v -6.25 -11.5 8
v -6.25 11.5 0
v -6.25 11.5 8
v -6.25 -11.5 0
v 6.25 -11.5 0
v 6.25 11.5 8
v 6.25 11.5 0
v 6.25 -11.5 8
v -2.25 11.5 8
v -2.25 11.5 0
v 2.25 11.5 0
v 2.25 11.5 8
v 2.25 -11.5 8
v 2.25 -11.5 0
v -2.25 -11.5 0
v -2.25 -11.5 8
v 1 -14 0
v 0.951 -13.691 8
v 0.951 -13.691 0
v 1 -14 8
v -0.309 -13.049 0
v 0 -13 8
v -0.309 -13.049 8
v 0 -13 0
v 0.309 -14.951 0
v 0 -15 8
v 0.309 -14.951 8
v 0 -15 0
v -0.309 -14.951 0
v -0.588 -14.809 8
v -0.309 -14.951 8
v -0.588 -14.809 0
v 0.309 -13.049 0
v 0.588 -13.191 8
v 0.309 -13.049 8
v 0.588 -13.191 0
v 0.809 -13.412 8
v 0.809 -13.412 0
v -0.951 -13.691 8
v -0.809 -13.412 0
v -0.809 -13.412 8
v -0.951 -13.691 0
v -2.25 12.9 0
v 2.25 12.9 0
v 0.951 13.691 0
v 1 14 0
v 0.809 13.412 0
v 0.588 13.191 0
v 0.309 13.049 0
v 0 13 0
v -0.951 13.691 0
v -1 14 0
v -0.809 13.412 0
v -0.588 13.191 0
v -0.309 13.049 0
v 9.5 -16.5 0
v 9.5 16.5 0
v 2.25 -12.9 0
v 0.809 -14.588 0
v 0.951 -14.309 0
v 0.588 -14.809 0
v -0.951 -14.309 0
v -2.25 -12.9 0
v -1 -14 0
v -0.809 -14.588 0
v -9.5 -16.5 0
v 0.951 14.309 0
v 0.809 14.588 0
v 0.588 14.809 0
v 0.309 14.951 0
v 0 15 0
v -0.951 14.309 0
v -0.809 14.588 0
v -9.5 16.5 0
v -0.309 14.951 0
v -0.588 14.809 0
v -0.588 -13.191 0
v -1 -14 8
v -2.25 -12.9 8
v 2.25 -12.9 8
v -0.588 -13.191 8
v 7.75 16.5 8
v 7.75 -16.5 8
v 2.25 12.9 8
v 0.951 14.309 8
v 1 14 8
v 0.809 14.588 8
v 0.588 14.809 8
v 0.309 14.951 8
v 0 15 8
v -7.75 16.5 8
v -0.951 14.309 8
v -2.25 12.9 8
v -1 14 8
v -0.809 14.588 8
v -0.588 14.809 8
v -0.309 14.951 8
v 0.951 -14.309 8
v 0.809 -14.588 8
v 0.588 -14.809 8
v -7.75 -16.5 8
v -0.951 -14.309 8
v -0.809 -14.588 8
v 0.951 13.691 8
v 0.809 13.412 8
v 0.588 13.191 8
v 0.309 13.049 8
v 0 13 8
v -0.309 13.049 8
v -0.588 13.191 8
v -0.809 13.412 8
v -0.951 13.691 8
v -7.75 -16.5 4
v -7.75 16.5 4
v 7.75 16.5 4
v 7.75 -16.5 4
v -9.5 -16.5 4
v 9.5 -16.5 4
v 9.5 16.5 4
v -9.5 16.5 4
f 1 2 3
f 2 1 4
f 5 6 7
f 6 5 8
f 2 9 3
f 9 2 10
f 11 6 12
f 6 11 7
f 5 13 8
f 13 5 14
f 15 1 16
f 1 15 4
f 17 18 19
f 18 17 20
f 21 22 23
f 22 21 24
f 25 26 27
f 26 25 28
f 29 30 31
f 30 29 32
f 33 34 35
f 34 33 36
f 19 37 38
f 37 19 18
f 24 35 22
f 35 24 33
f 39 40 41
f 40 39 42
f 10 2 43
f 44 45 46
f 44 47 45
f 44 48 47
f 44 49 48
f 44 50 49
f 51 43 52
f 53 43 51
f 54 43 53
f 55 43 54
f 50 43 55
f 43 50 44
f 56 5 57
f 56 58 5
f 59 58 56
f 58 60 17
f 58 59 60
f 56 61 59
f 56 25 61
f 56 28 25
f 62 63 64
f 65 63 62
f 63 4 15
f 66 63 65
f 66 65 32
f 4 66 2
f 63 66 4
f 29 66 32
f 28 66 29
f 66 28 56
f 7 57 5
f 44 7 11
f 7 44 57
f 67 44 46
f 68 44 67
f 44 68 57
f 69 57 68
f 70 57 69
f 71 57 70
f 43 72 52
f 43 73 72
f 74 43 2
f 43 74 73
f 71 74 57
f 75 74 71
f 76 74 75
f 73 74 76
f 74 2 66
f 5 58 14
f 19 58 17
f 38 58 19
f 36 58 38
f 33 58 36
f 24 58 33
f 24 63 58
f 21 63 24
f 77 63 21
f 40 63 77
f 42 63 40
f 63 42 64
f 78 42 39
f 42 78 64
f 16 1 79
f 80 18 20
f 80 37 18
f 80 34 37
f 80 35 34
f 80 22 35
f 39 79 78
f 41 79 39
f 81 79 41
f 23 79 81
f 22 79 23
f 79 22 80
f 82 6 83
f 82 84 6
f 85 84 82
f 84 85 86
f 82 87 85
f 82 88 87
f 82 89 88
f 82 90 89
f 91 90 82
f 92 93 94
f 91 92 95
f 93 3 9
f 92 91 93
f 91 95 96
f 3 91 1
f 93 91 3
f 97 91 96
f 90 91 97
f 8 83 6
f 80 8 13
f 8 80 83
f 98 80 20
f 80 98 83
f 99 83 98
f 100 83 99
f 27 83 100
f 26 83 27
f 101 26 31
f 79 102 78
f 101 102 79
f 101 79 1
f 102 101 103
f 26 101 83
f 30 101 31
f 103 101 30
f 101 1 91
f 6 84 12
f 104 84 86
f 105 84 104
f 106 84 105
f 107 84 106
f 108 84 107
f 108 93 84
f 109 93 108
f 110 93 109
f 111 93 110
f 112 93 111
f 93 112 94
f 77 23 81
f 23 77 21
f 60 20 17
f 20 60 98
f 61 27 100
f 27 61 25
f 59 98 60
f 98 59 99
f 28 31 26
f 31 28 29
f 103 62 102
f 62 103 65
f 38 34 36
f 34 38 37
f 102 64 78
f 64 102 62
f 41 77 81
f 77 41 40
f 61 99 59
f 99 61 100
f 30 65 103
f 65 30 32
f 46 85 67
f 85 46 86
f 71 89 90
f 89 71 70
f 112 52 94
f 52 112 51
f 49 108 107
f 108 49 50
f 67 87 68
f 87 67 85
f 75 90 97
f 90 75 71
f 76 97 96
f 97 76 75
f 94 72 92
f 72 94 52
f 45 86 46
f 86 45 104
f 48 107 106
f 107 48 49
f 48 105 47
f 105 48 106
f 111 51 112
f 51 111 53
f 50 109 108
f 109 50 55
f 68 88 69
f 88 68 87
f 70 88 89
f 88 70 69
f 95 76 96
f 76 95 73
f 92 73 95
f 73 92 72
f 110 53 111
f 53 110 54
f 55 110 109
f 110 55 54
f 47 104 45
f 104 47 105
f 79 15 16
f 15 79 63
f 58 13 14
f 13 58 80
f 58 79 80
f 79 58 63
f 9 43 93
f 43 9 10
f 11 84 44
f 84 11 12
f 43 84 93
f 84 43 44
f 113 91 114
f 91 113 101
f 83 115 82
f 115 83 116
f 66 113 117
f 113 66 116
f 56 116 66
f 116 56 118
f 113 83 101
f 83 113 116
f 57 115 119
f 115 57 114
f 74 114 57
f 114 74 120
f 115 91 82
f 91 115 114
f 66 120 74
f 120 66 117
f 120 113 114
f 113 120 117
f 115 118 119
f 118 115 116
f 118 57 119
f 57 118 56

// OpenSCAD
// file: inc/spur_generator.scad
// Copyright 2011 Cliff L. Biffle.
// This file is licensed Creative Commons Attribution-ShareAlike 3.0.
// http://creativecommons.org/licenses/by-sa/3.0/

// You can get this file from http://www.thingiverse.com/thing:3575
use <parametric_involute_gear_v5.0.scad>

// Couple handy arithmetic shortcuts
function sqr(n) = pow(n, 2);
function cube(n) = pow(n, 3);

// This was derived as follows:
// In Greg Frost's original script, the outer radius of a spur
// gear can be computed as...
function gear_outer_radius(number_of_teeth, circular_pitch) =
  (sqr(number_of_teeth) * sqr(circular_pitch) + 64800)
    / (360 * number_of_teeth * circular_pitch);

// We can fit gears to the spacing by working it backwards.
//  spacing = gear_outer_radius(teeth1, cp)
//          + gear_outer_radius(teeth2, cp);
//
// I plugged this into an algebra system, assuming that spacing,
// teeth1, and teeth2 are given.  By solving for circular pitch,
// we get this terrifying equation:
function fit_spur_gears(n1, n2, spacing) =
  (180 * spacing * n1 * n2  +  180
    * sqrt(-(2*n1*cube(n2)-(sqr(spacing)-4)*sqr(n1)*sqr(n2)+2*cube(n1)*n2)))
  / (n1*sqr(n2) + sqr(n1)*n2);
// file: positions.scad
include <config.scad>;

filament_from_carriage = hotend_diam / 2 + 8; // make sure the hotend can clear the carriage
filament_x = hobbed_diam/2 + filament_diam/2 - .6;

// bearing helps provide clearance for motor mount screws
gear_side_bearing_y = bearing_height/2-m3_socket_head_height+1;

// MR105ZZ
//idler_bearing_outer     = 10;
//idler_bearing_inner     = 5;
//idler_bearing_thickness = 4;
//idler_nut_diam          = 8;

// 625ZZ
idler_bearing_height = 5;
idler_bearing_outer  = 16;
idler_bearing_inner  = 5;
idler_nut_diam       = m5_nut_diam;

idler_width        = idler_bearing_height+14;
idler_thickness    = idler_bearing_inner+3+1;
idler_shaft_diam   = idler_bearing_inner;
idler_shaft_length = idler_width*2;
idler_x            = filament_x + idler_bearing_outer/2 + filament_diam/2;

main_body_motor_side_width = bearing_outer/2+3;
main_body_open_side_width  = idler_x + idler_shaft_diam/2 + 2;
main_body_width            = main_body_motor_side_width + main_body_open_side_width;
main_body_x                = main_body_open_side_width-main_body_width/2;

idler_screw_from_shaft       = bearing_outer/2+idler_screw_nut_diam/2+2;
main_body_idler_side_height  = idler_screw_from_shaft + idler_screw_nut_diam/2 + min_material_thickness*2;
main_body_idler_side_height  = bearing_outer/2 + 2 + 4 + 2;
main_body_hotend_side_height = bearing_outer/2 + 10;
main_body_height             = main_body_idler_side_height + main_body_hotend_side_height;
main_body_z                  = main_body_idler_side_height - main_body_height/2;

hotend_retainer_width_motor_side = main_body_motor_side_width + abs(filament_x);
hotend_retainer_diam             = hotend_diam + min_material_thickness*2;
hotend_retainer_width_idler_side = hotend_retainer_diam/2;
hotend_retainer_width            = hotend_retainer_width_idler_side + hotend_retainer_width_motor_side;

hotend_retainer_height           = hotend_height_above_groove + hotend_groove_height;
hotend_retainer_x                = filament_x - hotend_retainer_width_motor_side + hotend_retainer_width/2;
hotend_retainer_z                = 0;

// motor position
motor_y = mount_plate_thickness;
motor_z = -motor_hole_spacing/2;
motor_x = -1*(main_body_motor_side_width+0.1+motor_side/2);

gear_dist = sqrt(pow(abs(motor_x),2)+pow(abs(motor_z),2));

idler_screw_spacing = (idler_width - idler_bearing_height - 2);

idler_lower_half = 0;
idler_upper_half = idler_screw_from_shaft+idler_screw_diam/2+3;
idler_thumb_lever_thickness = 3;
idler_thumb_lever_length = 6;

bowden_retainer_clip_outer = 12;

filament_y   = mount_plate_thickness + filament_diam;
total_depth  = filament_y + 5 + idler_bearing_height * 2;
total_height = motor_side + bottom_thickness;

idler_gap_width = 1;
idler_height       = main_body_height - 2;
idler_hinge_height = 2;
idler_gap_x        = idler_x - idler_shaft_diam/2 - 1 - idler_gap_width/2;
idler_gap_z        = main_body_z + (main_body_height/2 - idler_height/2);
// file: config.scad
$fa = 1;
$fs = 0.4;

// ESP PCB dimensions (with margins)
esp_pcb_w = 26.5;
esp_pcb_l = 34.5;
esp_pcb_h = 1.0;

// SCD PCB dimensions (with margins)
scd_pcb_w = 13.5;
scd_pcb_l = 22.5;
scd_pcb_h = 1.7;

// ESP PCB foot height
foot_h = 2.5;
// ESP PCB surface height
surface_h = foot_h + esp_pcb_h;
// Component height above ESP PCB
component_h = 20;

// SCD PCB rail length
scd_rail_l = scd_pcb_l*0.75;

// Thickness of the sides
side_t = 1.5;
// Wall height without top/bottom sides
wall_h = surface_h + component_h;

// USB hole dimensions (with margins)
usb_hole_w = 9;
usb_hole_h = 4;

// Rear gap for removing the lid
gap_w = 10;
gap_h = 2;

// Total case dimensions
total_w = esp_pcb_w + side_t*2;
total_l = esp_pcb_l + scd_pcb_l + side_t*2;
// file: util.scad
module rounded_square(size = [1,1] , r=0.25, corners = [true,true,true,true]) {
    difference() {
        square(size);
           
        corner(r);
    }
}

module corner(r = 1) {
    rotate(180)
    translate([1,1]*-r)
    difference() {
        square(r);
        circle(r);
    }
}


rounded_square($fn=30);
// file: gearbox.scad
use <regular_polygon.scad>;

gearbox_height=23;
gearbox_holes_distance=60;
gearbox_length=70;
gearbox_end_to_shaft = 25;
gearbox_end_to_hole = 19;

/* 23mm = 134 px */
/* = 145 px*/

shaft_total_length = 100;

module gearbox_model() {
  difference(){
  cube([gearbox_length,gearbox_holes_distance,gearbox_height]);
  union(){
    cube([gearbox_length/2,10,gearbox_height]);
    translate([0,gearbox_holes_distance-10,0])cube([gearbox_length/2,10,gearbox_height]);
    translate([gearbox_length-gearbox_end_to_hole, 0,0])cylinder(d=4,h=gearbox_height);
    translate([gearbox_length-gearbox_end_to_hole, gearbox_holes_distance,0])cylinder(d=4,h=gearbox_height);
  }
  }
}

module gearbox_model_xhole() {
  difference(){
  cube([gearbox_length,gearbox_holes_distance,gearbox_height]);
  union(){
    cube([gearbox_length/2-8,10,gearbox_height]);
    translate([0,gearbox_holes_distance-10,0])cube([gearbox_length/2-8,10,gearbox_height]);
    translate([gearbox_length-gearbox_end_to_hole, 0,0])cylinder(d=6,h=gearbox_height);
    translate([gearbox_length-gearbox_end_to_hole, gearbox_holes_distance,0])cylinder(d=6,h=gearbox_height);
  }
  }
  color([1,0,0])translate([gearbox_length-gearbox_end_to_hole, 0,0])cylinder(d=3.2,h=gearbox_height-10);
      translate([gearbox_length-gearbox_end_to_hole, gearbox_holes_distance,0])cylinder(d=3.2,h=gearbox_height-10);
    
}



module gearbox_drive_shaft() {
translate([gearbox_length-gearbox_end_to_shaft,-(shaft_total_length-gearbox_holes_distance)/2,gearbox_height/2])rotate([-90,0,0])linear_extrude(h=shaft_total_length)regular_polygon(order = 6, r=1.7);
}

module full_gearbox_model() {
/* gearbox_model(); */
color([1,0,0])gearbox_drive_shaft();
}
gearbox_model_xhole();
// file: nut.scad
use <regular_polygon.scad>;
module nut(nut_d=6.4,h=2.4) {
  linear_extrude(height=h)regular_polygon(order=6, r=nut_d/2);
}
// file: my_servo_spline.scad
module my_servo_spline(h=2.6) {
// Generate test plate for determining proper size, or spline alone for integrating into larger design
part = "spline"; // [ plate:Test Plate, spline:Spline Only ]

// How many points are on the spline (it's important that this is correct)
spline_count = 21;

// Estimated diameter of spline will be fine-tuned for a good fit
approximate_diameter = 4.2;

// First attempt, recommend 0.2 or greater, finer tuning recommend 0.1
step_size = 0.1;

module dummy() { }  // no more parameters

approx_od = approximate_diameter;
disc_size = approx_od+10;  // for purposes of plate generation...

stepmin = -4;
stepmax = 4;
xmid = (stepmin+stepmax)/2*(approx_od+8);

if (part == "plate") {
  for (i=[stepmin:stepmax]) {
    translate([i*(approx_od+8), 0, 0]) {
      spline_hole(approx_od + i*step_size);
      spline_plate(i);
    }
  }

  translate([xmid, 17, 0])
  linear_extrude(height=1)
  text(str("Nominal: ", approx_od, "  Step: ", step_size), 5, halign="center");
}
else {  // spline or anything else, just make the spline
  spline_hole(approx_od);
}


module spline_hole(inside_points_diameter = approx_od, label) {
  r1 = inside_points_diameter/2;
  // approximate distance along circumference from one bump to the next
  space = r1*sin(360/spline_count);
  r2 = r1 + space*0.75;  // pointy but not *too* pointy
  // about 4mm solid between outer points and outside disc, should be large enough to prevent 
  // slicers from being goofy about the space betewen the splines and the outside.
  disc_d = 2*r2 + 8;  
  
  linear_extrude(height=h)
  difference() {
    circle(d=disc_d, $fn=36);
    polygon([ 
      for (i=[1:2*spline_count])
        (i % 2 == 0) ? 
          [ r1*cos(i*360/(2*spline_count)), r1*sin(i*360/(2*spline_count)) ] : 
          [ r2*cos(i*360/(2*spline_count)), r2*sin(i*360/(2*spline_count)) ]
        ]);
  }
}


module spline_plate(label) {
  // text showing which value
  translate([0, disc_size/2+1, 0])
  linear_extrude(height=1)
  text(str(label), 5, halign="center");
  
  // flat plate on which to put text
  translate([-disc_size/2-2, -disc_size/2, -2])
  cube([disc_size+4, disc_size+18, 2]);
}
}

my_servo_spline();
// file: regular_polygon.scad
module regular_polygon(order = 4, r=1){
     angles=[ for (i = [0:order-1]) i*(360/order) ];
     coords=[ for (th=angles) [r*cos(th), r*sin(th)] ];
     polygon(coords);
}
// file: mounting_plate.scad
use <regular_polygon.scad>;
module mounting_plate(w=80, d=30, nut_d=5.2, nut_height=2.4, plate_height=3, corner_radius=2){
  $fn=50;
  difference() {
  union(){
  translate([corner_radius,corner_radius,0])minkowski(){
    cube([w-2*corner_radius,d-2*corner_radius,plate_height]);
    cylinder(r=corner_radius,h=1);
  }
  }
  union(){
  for(j = [5 : 10 : w-5])
  for(i = [5 : 10 : d-5]) {
  translate([j,i,plate_height-2.4]){
      linear_extrude(height=10)regular_polygon(order=6, r=nut_d/2);
  }
  translate([j,i,0])cylinder(d=3,h=10);
  }
  }
  }
}

mounting_plate(w=30);
// file: gears.scad
use <util.scad>;

da6 = 1 / cos(180 / 6) / 2;
da8 = 1 / cos(180 / 8) / 2;

// Copyright 2011 Cliff L. Biffle.
// This file is licensed Creative Commons Attribution-ShareAlike 3.0.
// http://creativecommons.org/licenses/by-sa/3.0/

// You can get this file from http://www.thingiverse.com/thing:3575
include <config.scad>
include <positions.scad>
use <inc/parametric_involute_gear_v5.0.scad>
use <inc/spur_generator.scad>

//include <configuration.scad>
//include <positions.scad>

// M6
ext_shaft_diam = 6;
ext_shaft_nut_diam = 10;
ext_shaft_nut_height = 4.5;

// M5
ext_shaft_diam = 5;
ext_shaft_nut_diam = 8.1;
ext_shaft_nut_height = 3.5;

// Here's an example.
large_tooth_num = 49;
small_tooth_num = 9;
/* use this ratio for NEMA17?
*/
large_tooth_num = 41;
small_tooth_num = 13;
// printed 51 and 9
// 7 and 41
// 9 and 41
// 11 and 49
gear_pitch = fit_spur_gears(large_tooth_num, small_tooth_num, gear_dist);

small_tooth_height = 7;
small_gear_height  = 15;

large_gear_thickness     = small_tooth_height + 1;
large_gear_hub_thickness = large_gear_thickness + ext_shaft_nut_height + 5;
large_gear_hub_diam      = ext_shaft_nut_diam + 7;

module large_gear() {
  difference() {
    union() {
      gear (circular_pitch=gear_pitch,
        gear_thickness  = large_gear_thickness,
        rim_thickness   = large_gear_thickness,
        rim_width       = 3,
        hub_thickness   = large_gear_thickness,
        hub_diameter    = large_gear_hub_diam,
        number_of_teeth = large_tooth_num,
        circles         = 4,
        bore_diameter   = 0
      );
      translate([0,0,large_gear_hub_thickness/2]) {
        hole(large_gear_hub_diam,large_gear_hub_thickness,32);
      }

      for(r=[0,1,2,3]) {
        rotate([0,0,r*90+45]) {
          hull() {
            intersection() {
              translate([0,0,large_gear_hub_thickness/2]) {
                hole(large_gear_hub_diam,large_gear_hub_thickness,32);
              }
              translate([0,0,large_gear_hub_thickness/2]) {
                cube([large_gear_hub_diam,6,large_gear_hub_thickness],center=true);
              }
            }

            translate([large_gear_hub_diam*1.1,0,large_gear_thickness/2]) {
              hole(6,large_gear_thickness);
            }
          }
        }
      }
    }
    hole(ext_shaft_diam,50,16);
    translate([0,0,large_gear_hub_thickness]) {
      hole(ext_shaft_nut_diam,ext_shaft_nut_height*2,6); // nut trap for m6 nut
    }
    for(r=[0,1,2,3]) {
      rotate([0,0,r*90+45]) {
        translate([ext_shaft_diam/2 + 3.5,0,0]) {
          hole(1,(large_gear_hub_thickness-ext_shaft_nut_height-1)*2,6);
        }
      }
    }
  }
}

module small_gear() {
  set_screw_nut_diam = 6;
  difference() {
    gear (
      circular_pitch  = gear_pitch,
      gear_thickness  = small_tooth_height,
      rim_thickness   = small_tooth_height,
      hub_thickness   = small_gear_height,
      circles         = 0,
      number_of_teeth = small_tooth_num,
      rim_width       = 2,
      bore_diameter   = 0,
      hub_diameter    = 21
    );

    // flatted motor hole
    difference() {
      hole(5.2,40,16);
      //% rotate([0,0,22.5]) cylinder(r=4.5*da8,$fn=8,h=90,center=true);
      //% rotate([0,0,22.5]) cylinder(r=5*da8,$fn=8,h=90,center=true);
      translate([2.65,0,0]) cube([1,10,100],center=true);
    }

    // m3 set screw
    // m3 nut == 5.5mm * 3mm
    translate([2.25,0,small_gear_height-3.5]) {
      rotate([0,90,0]) cylinder(r=set_screw_nut_diam*da6,h=5,$fn=6,center=true);
      translate([0,0,2.1]) cube([5,set_screw_nut_diam,3],center=true);
      translate([10,0,0]) rotate([90,0,0]) rotate([0,90,0]) cylinder(r=3*da6,h=20,$fn=6,center=true);
      //% translate([1.25,0,0]) rotate([0,90,0]) cylinder(r=5.5*da6,h=2.5,$fn=6,center=true);
    }
  }
}

module assembly() {
  large_gear();

  translate([gear_dist,0,0]) small_gear();
}

module plate() {
  large_gear();

  translate([gear_dist + 10,0,15]) {
    rotate([180,0,0]) small_gear();
  }
}

plate();
//assembly();
// file: servo_holder.scad
module servo_space(add=0){
thickness=1.5;
thickness2=5;
w=12.5;
d=23;
wires_spacing=1.4;
wires_w=4.5;
h=8;

 a=d+2*thickness2+add; b=w+2*thickness; c=10;
 translate([-b/2,-a/2,0])cube([b,a,h]);
}

module servo_holder(){
thickness=1.5;
thickness2=5;
w=12.5;
d=23;
wires_spacing=1.4;
wires_w=4.5;
h=8;
translate([-w/2-thickness,-d/2-thickness2,0])difference(){
  cube([w+2*thickness, d+2*thickness2,h]);
  union(){
    translate([thickness,thickness2,-1])cube([w,d,h+2]);
    translate([thickness+w/2,thickness2/2,h-8])cylinder(d=2,h=8,$fn=20);
    translate([thickness+w/2,d+thickness2*1.5,h-8])cylinder(d=2,h=8,$fn=20);
    translate([thickness+w/2,thickness2-wires_spacing,0])
      translate([-wires_w/2,0,0])color([1,0,0])cube([wires_w,wires_spacing,h]);
    translate([thickness+w/2,d+thickness2,0])
      translate([-wires_w/2,0,0])color([1,0,0])cube([wires_w,wires_spacing,h]);
  }
}
}
servo_holder();

servo_space();
// file: steering.scad
use <gears.scad>;
use <servo_holder.scad>;
use <mounting_plate.scad>;
use <flexbatter.scad>;
use <regular_polygon.scad>;
use <my_servo_spline.scad>;
use <nut.scad>;

include <gearbox.scad>;

corner_radius = 3;
rantl_height = 10;
rantl_thick = 2;
w=80;
d=140;
plate_height=3;

module center_cube(x=10,y=10,z=1) {
  translate([-x/2, -y/2, 0])cube([x,y,z]);
}

rozvor=82;
d=30;
h=8;
vnitrek=rozvor-h;
shaft=8;
shaft_len=20;
teeth=26;
height=4;
$fn=50;

module steer_gear(){
  difference() {
    union() {
      /* shaft */
      translate([10.4/2,0,0])rotate([0,90,0])cylinder(d=shaft, h=shaft_len-10.4/2);

      /* doplneni valecku na proti ozubenemu pulkolu */
      cylinder(d=16,h=4);
      
      /* pulkolo */
      translate([0,0,height/2])gear (
        number_of_teeth = teeth,
        thickness       = height,
        hole_diameter   = 10.4,
        teeth_to_hide = teeth/2-1
      );
  }
  union(){
    cylinder(d=10.4,h=10);
    translate([-50,-50,-10])cube([100,100,10]);
  }
}
}

module mid_gear(){
 color([1,0,0])translate([0,-rozvor/2-h/2,0])translate([0,0,height/2])gear (
  number_of_teeth = teeth,
  thickness       = height,
  hole_diameter   = 10.4
);
}

module steering() {
translate([0,-shaft_len,0])rotate([0,0,90])steer_gear();
translate([0,-rozvor+shaft_len-h,0])rotate([0,0,-90])steer_gear();
mid_gear();
}

module base() {
translate([0,0,0]){
/* zakladna */
difference(){
translate([-10.4/2,-h-vnitrek+7,-4]){
  union() {
    color([0,0,1])cube([130,vnitrek-14,4]);
    color([1,0,0])translate([60,-5,0])cube([71,70,4]);
    color([1,0,1])translate([60+70-23.5,0,0])cylinder(d=6.1,h=15.4);
    color([1,0,1])translate([60+70-23.5,60,0])cylinder(d=6.1,h=15.4);
  }
}
  union() {
    /* servo space */
    translate([25,-rozvor/2-h/2,-5])rotate([0,0,90])servo_space(add=5);
    translate([0,0,-5]){
      translate([0,-rozvor/2-h/2,0]){nut(); cylinder(d=3.2, h=10);}
      translate([0,-shaft_len,0])rotate([0,0,90]){nut(); cylinder(d=3.2, h=10);}
      translate([0,-rozvor+shaft_len-h,0])rotate([0,0,-90]){nut(); cylinder(d=3.2, h=10);}
    }

  }
}
/* kolik na stredni kolo */
color([0,1,0])translate([0,-rozvor/2-h/2,0])difference(){cylinder(d=10,h=4);cylinder(d=7,h=4);}
/* kolik na prve kolo */
color([0,1,0])translate([0,-shaft_len,0])rotate([0,0,90])difference(){cylinder(d=10,h=4);cylinder(d=7,h=4);}
/* kolik na druhe kolo */
color([0,1,0])translate([0,-rozvor+shaft_len-h,0])rotate([0,0,-90])difference(){cylinder(d=10,h=4);cylinder(d=7,h=4);}
}
}

module pins() {
/* zajistovaci kolicky */
for (x = [20:15:60]) {
  translate([x,0,0]){
    difference(){
      union(){
        cylinder(d=12,h=3);
        translate([0,0,3])cylinder(r2=3.4, r1=3.5,h=4.1);
      }
      union(){
        cylinder(d=6.2,h=2);
        cylinder(d=3.2,h=7.1);
      }
    }
  }
}

}

module servo_gear() {
/* servo gear */
translate([0,10,0])union(){translate([0,0,2])gear (
  number_of_teeth = 16,
  thickness       = 4,
  hole_diameter   = 6 
);
  my_servo_spline(h=3.2);
  translate([0,0,3.2])difference(){cylinder(d=7, h=0.8);cylinder(d=3.2,h=0.8);}
}
}


pins();
servo_gear();
steering();
base();
// main file
use <steering.scad>;
use <servo_holder.scad>;

servo_holder();
a=33;
b=15;
rim=2;
hh=4;

difference(){

translate([-b/2-rim,-a/2,0])cube([b+rim+rim,a,hh]);
translate([-b/2,-a/2,0])cube([b,a,hh]);
    }
